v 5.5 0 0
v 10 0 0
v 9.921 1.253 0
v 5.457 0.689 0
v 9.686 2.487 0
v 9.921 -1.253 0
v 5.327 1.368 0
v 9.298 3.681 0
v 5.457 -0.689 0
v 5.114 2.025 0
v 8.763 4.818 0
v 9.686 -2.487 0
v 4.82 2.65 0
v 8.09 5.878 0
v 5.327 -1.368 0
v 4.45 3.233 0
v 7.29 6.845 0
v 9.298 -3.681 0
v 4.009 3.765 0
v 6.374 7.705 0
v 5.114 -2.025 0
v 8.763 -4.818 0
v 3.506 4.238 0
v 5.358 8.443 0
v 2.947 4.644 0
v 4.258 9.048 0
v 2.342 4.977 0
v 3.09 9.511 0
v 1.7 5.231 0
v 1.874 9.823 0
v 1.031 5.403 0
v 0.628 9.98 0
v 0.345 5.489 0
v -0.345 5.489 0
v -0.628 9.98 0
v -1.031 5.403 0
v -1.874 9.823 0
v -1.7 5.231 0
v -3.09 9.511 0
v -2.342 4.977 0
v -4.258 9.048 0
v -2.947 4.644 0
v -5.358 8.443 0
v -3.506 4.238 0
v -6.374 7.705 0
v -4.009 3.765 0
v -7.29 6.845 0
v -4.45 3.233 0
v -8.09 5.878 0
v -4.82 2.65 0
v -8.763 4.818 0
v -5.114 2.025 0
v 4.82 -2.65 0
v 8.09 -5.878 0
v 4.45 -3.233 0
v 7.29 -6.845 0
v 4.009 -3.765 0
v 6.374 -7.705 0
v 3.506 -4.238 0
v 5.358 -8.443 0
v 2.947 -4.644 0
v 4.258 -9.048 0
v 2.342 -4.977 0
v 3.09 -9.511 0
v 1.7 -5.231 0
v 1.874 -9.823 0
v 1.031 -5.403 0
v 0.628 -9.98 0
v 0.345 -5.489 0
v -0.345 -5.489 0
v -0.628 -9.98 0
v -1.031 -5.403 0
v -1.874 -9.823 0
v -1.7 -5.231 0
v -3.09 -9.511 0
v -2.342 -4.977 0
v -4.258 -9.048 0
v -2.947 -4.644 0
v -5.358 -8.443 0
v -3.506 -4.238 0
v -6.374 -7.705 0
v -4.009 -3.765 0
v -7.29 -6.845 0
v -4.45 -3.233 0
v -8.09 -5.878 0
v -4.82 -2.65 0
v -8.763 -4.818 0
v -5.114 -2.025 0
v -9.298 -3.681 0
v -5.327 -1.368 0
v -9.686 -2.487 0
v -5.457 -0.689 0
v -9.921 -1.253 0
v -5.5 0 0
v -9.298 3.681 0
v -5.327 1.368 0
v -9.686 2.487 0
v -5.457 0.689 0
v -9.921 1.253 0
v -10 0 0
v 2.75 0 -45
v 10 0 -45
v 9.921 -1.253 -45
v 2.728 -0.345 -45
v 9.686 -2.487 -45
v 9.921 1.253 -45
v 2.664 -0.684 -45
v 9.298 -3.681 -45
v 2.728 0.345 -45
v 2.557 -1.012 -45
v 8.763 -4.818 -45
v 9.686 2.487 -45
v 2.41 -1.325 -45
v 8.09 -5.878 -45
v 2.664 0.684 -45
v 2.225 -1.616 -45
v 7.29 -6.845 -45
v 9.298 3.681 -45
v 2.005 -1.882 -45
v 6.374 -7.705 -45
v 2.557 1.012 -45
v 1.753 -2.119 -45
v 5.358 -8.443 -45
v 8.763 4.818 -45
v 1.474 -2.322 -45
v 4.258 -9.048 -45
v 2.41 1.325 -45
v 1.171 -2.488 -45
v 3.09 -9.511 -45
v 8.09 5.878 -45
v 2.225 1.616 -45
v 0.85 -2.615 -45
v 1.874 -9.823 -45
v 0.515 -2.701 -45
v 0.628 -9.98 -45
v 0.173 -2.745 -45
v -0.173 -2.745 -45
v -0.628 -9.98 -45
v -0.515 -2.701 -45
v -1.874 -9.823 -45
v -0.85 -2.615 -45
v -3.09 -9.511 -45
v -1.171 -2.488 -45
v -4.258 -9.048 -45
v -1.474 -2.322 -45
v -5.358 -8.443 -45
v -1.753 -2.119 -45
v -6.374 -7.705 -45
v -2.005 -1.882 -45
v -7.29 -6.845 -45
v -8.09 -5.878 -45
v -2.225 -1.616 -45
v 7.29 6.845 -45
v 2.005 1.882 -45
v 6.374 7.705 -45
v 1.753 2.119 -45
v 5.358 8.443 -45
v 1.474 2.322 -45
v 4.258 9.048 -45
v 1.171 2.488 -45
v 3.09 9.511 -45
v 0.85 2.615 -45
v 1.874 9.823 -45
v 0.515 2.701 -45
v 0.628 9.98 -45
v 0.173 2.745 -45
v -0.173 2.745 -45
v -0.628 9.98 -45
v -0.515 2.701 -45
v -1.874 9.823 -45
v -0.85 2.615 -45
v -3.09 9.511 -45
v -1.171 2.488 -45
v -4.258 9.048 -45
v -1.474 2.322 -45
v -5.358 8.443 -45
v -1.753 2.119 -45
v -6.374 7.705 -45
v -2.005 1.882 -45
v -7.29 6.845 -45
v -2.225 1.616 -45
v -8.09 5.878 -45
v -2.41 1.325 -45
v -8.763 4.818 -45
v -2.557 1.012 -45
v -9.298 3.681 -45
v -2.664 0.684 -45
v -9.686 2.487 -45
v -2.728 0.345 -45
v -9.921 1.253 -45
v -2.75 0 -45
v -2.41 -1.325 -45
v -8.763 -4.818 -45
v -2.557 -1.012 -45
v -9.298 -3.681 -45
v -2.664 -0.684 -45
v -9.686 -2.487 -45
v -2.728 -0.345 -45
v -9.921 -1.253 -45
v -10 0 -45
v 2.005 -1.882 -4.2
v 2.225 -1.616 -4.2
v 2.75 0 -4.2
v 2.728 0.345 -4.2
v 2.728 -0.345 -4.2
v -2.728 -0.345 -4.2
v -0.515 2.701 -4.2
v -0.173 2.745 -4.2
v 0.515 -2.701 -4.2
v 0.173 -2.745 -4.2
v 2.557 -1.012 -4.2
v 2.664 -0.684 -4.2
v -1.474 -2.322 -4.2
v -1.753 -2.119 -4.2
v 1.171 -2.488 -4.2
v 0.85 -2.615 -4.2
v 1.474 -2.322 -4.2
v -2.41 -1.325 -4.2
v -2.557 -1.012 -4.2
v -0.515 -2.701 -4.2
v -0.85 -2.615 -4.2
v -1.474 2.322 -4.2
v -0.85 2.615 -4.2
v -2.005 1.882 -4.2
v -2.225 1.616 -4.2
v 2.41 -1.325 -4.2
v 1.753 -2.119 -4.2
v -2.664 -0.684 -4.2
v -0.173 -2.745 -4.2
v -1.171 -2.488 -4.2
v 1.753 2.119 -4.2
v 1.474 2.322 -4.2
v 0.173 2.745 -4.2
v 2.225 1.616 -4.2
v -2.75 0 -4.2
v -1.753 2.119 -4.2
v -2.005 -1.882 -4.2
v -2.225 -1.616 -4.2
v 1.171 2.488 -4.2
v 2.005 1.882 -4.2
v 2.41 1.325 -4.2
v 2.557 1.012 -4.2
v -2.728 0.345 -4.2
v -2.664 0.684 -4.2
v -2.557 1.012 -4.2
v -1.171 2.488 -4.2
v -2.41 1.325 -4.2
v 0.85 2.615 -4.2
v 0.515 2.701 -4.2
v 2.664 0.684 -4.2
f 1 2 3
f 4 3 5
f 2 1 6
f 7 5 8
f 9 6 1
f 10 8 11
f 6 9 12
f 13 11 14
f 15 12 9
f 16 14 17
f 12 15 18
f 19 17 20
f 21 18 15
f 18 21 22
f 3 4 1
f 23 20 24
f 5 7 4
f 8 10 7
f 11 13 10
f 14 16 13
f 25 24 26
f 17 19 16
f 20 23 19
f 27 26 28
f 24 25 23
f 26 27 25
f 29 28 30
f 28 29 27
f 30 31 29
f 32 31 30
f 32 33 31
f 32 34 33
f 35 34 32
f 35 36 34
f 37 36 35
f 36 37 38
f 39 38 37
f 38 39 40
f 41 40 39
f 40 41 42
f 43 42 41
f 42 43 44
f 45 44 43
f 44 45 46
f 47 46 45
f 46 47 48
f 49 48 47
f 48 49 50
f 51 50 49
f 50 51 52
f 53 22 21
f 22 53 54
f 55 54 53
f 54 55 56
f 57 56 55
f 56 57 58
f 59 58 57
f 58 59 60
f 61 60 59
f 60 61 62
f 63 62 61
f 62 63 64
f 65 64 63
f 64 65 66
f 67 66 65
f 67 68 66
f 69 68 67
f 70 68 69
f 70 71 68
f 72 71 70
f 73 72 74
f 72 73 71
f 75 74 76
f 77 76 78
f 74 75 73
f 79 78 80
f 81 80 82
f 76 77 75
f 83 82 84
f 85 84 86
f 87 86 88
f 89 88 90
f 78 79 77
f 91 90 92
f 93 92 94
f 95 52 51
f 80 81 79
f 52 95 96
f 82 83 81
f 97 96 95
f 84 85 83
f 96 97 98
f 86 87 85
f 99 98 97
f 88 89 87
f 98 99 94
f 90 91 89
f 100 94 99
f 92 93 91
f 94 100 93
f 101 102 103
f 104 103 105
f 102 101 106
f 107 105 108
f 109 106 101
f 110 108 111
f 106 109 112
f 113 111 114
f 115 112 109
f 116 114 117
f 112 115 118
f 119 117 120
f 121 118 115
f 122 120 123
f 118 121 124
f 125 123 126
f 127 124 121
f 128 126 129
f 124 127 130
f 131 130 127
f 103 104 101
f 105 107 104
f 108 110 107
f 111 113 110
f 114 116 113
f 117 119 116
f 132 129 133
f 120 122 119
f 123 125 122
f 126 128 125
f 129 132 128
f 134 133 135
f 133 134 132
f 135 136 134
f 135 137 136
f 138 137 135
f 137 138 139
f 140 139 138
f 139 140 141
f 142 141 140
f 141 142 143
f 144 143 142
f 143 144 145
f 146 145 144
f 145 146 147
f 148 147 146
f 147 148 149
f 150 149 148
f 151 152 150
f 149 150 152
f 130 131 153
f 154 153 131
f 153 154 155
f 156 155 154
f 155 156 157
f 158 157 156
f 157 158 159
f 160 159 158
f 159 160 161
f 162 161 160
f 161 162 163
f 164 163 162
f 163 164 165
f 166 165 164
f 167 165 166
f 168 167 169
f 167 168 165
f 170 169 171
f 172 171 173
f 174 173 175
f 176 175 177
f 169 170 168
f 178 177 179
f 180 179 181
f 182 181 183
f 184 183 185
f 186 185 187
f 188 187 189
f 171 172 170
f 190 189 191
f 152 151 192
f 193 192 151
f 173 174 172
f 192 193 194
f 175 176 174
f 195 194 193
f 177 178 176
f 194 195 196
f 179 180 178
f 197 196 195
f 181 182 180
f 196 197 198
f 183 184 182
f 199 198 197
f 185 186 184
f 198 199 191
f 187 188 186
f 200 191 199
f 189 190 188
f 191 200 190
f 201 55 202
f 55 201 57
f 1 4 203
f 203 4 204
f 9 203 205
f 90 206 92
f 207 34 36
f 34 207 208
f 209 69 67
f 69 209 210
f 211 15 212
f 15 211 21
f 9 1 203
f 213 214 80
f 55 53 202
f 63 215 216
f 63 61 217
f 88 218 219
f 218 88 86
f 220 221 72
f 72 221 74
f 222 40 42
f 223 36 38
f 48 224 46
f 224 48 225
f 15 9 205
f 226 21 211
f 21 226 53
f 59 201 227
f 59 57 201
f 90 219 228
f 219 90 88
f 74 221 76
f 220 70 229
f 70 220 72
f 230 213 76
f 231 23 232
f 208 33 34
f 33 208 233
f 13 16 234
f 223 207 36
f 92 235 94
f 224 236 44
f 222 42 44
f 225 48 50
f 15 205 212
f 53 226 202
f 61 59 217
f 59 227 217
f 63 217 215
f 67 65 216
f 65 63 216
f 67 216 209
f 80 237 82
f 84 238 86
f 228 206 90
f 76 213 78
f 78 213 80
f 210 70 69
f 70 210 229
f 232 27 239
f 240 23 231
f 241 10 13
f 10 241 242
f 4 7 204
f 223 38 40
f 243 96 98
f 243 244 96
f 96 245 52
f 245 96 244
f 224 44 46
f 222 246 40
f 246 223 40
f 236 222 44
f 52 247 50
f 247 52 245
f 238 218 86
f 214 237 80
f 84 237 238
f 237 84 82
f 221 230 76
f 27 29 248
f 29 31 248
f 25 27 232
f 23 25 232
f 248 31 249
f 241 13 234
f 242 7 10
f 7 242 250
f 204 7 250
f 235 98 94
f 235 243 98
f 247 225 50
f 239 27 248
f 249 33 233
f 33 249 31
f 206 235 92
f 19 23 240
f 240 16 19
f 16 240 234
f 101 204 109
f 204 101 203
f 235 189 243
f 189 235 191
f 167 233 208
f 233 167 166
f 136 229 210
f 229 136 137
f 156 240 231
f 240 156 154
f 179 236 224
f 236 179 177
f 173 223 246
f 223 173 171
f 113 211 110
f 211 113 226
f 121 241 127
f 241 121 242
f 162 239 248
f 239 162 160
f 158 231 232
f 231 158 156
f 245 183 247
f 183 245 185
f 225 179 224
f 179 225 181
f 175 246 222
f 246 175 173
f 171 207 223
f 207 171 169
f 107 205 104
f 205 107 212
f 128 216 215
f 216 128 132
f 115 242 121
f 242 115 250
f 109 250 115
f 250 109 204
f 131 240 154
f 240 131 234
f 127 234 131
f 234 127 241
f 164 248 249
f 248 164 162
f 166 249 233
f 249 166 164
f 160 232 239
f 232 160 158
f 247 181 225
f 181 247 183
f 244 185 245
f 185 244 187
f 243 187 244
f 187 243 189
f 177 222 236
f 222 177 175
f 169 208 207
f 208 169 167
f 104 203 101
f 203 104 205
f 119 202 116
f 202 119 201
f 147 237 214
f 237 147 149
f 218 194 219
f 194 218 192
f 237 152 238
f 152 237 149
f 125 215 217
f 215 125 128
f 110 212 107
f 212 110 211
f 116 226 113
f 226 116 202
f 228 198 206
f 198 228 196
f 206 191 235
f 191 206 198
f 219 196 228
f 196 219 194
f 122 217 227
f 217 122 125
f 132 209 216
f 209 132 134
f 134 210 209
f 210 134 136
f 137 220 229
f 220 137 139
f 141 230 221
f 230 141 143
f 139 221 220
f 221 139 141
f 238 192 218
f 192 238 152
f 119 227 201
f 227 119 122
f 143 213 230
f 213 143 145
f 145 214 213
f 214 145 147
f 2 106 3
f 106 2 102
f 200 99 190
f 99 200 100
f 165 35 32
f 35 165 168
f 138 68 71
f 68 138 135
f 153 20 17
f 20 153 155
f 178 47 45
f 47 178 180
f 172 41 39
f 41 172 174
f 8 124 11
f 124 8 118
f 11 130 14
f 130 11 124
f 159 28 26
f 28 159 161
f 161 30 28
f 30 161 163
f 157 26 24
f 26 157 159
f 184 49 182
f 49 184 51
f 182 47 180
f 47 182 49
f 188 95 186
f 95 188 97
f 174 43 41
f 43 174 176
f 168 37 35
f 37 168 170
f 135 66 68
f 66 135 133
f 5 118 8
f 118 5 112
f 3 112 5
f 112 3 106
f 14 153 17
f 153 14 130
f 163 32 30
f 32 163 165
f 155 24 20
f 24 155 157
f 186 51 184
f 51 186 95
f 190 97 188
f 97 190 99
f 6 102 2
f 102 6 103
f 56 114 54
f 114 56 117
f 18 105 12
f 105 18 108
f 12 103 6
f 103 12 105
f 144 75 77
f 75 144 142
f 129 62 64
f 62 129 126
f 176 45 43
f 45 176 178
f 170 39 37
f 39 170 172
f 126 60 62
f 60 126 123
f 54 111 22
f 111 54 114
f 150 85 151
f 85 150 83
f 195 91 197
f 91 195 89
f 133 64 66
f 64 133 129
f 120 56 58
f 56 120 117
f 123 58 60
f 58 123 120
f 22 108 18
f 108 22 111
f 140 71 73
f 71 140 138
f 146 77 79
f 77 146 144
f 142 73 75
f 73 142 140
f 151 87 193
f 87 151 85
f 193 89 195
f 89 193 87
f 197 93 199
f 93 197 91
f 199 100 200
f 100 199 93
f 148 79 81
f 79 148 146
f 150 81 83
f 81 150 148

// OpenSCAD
$fn = 50;


difference() {
	union() {
		translate(v = [0, 0, -45.0000000000]) {
			cylinder(h = 45, r = 10.0000000000);
		}
		cylinder(h = 0, r = 13.0000000000);
	}
	union() {
		translate(v = [0, 0, 0]) {
			rotate(a = [0, 0, 0]) {
				difference() {
					union() {
						#translate(v = [0, 0, -45.0000000000]) {
							cylinder(h = 45, r = 2.2500000000);
						}
						#translate(v = [0, 0, -4.2000000000]) {
							cylinder(h = 4.2000000000, r = 10.0000000000, r1 = 2.7500000000, r2 = 5.5000000000);
						}
						#translate(v = [0, 0, -45.0000000000]) {
							cylinder(h = 45, r = 2.7500000000);
						}
						#translate(v = [0, 0, -45.0000000000]) {
							cylinder(h = 45, r = 2.2500000000);
						}
					}
					union();
				}
			}
		}
	}
}
